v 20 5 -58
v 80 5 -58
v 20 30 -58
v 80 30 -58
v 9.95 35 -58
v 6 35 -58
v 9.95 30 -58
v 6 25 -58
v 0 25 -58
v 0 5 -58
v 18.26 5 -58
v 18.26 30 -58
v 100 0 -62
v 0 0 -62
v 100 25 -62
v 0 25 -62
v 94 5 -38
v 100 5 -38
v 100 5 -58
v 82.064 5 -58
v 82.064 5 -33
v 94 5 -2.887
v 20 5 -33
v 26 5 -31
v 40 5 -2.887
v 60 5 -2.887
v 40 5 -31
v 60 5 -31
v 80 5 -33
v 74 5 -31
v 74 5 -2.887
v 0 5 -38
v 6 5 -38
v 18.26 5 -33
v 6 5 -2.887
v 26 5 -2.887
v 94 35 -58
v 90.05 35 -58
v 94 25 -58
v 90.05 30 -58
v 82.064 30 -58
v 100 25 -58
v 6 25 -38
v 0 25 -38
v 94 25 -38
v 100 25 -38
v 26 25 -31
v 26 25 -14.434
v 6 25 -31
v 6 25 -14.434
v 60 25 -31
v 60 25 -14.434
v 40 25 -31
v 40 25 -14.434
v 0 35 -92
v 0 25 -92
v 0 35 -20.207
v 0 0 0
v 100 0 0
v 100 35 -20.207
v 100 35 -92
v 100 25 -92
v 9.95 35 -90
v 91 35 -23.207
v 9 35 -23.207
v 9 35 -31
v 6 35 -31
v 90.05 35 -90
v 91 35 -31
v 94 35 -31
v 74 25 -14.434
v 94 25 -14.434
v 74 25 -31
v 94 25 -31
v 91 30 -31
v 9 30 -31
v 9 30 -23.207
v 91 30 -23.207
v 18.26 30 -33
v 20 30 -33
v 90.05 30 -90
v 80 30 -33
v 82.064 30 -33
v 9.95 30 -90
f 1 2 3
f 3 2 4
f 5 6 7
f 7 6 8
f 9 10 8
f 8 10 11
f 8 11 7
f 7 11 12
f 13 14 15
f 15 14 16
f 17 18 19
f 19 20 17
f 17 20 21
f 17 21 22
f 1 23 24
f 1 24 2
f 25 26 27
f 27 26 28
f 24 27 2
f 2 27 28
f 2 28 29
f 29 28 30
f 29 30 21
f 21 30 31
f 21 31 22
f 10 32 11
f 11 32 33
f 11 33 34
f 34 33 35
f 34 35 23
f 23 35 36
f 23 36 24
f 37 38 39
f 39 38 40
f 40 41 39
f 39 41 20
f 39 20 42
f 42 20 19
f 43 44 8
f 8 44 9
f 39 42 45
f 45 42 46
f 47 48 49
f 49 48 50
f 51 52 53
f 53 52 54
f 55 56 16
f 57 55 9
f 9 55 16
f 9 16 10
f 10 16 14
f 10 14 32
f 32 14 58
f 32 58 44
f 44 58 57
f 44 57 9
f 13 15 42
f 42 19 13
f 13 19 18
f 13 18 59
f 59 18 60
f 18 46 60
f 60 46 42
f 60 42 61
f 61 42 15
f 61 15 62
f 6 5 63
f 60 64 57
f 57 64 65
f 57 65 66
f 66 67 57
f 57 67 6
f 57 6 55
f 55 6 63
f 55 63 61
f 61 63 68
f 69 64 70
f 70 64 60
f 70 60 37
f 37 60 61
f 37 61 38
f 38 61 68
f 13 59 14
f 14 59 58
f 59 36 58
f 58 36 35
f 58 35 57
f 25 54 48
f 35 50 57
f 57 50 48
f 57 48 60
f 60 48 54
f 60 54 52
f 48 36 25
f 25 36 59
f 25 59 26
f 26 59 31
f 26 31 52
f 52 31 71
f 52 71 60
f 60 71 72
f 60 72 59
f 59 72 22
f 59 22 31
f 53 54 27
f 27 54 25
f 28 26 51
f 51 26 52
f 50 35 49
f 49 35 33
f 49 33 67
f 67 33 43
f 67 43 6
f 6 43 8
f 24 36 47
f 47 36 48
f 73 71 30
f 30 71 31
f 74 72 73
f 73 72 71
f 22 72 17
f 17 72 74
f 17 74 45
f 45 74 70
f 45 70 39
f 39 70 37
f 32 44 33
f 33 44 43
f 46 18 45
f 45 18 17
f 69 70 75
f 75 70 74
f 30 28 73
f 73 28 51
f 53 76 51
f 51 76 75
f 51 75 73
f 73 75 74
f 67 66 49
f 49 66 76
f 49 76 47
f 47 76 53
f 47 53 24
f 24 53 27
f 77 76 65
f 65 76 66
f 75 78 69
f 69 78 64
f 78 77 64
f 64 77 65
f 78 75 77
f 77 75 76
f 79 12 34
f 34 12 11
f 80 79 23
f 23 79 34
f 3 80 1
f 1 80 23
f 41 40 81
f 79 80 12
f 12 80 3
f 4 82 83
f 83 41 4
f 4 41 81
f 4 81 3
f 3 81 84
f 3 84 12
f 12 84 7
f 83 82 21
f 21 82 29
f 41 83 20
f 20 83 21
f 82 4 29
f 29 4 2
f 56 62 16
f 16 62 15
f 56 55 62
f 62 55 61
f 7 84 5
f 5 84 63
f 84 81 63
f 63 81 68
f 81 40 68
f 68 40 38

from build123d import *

# Parameters (mm, degrees)
CROQUIS1_W              = 100
CROQUIS1_H              = 62
SALIENTE_EXTRUIR1_DEPTH = 35
CHAFL_N1_SIZE2          = 20.207259422
CHAFL_N1_SIZE           = 35
CROQUIS3_W              = 20
CROQUIS3_H              = 20
CORTAR_EXTRUIR1_DEPTH   = 38
CROQUIS4_W              = 20
CROQUIS4_H              = 20
CORTAR_EXTRUIR2_DEPTH   = 100
CROQUIS7_W              = 88
CROQUIS7_H              = 27
CORTAR_EXTRUIR5_DEPTH   = 30
CORTAR_EXTRUIR6_DEPTH   = 5
CROQUIS9_W              = 1.740341303
CROQUIS9_H              = 25
CROQUIS9_W_2            = 2.064222337
SALIENTE_EXTRUIR2_DEPTH = 25
CROQUIS10_W             = 100
CROQUIS10_H             = 10
SALIENTE_EXTRUIR3_DEPTH = 30
CROQUIS11_W             = 80.1
CROQUIS11_H             = 32
CORTAR_EXTRUIR7_DEPTH   = 5


with BuildPart() as part:
    # Croquis1 → Saliente-Extruir1 (new body)
    with BuildSketch(Plane(origin=(0, 0, 0), x_dir=(1, 0, 0), z_dir=(0, 1, 0))):
        with Locations((50, 31)):
            Rectangle(CROQUIS1_W, CROQUIS1_H)
    extrude(amount=SALIENTE_EXTRUIR1_DEPTH)

    # Chaflán1
    chafl_n1_edges = [part.edges().sort_by_distance(p)[0] for p in [
        (50, 35, 0),
    ]]
    chafl_n1_side = [part.faces().sort_by_distance(p)[0] for p in [
        (50, 34.595854812, 0),
    ]]
    chamfer(chafl_n1_edges, length=CHAFL_N1_SIZE - 0.0001, length2=CHAFL_N1_SIZE2 - 0.0001, reference=chafl_n1_side[0])  # a hair under: the kernel refuses the full size

    # Croquis3 → Cortar-Extruir1 (cut)
    with BuildSketch(Plane.XY):
        with Locations((50, 15)):
            Rectangle(CROQUIS3_W, CROQUIS3_H)
        with Locations((16, 15)):
            Rectangle(CROQUIS3_W, CROQUIS3_H)
        with Locations((84, 15)):
            Rectangle(CROQUIS3_W, CROQUIS3_H)
    extrude(amount=-CORTAR_EXTRUIR1_DEPTH, mode=Mode.SUBTRACT)

    # Croquis4 → Cortar-Extruir2 (cut)
    with BuildSketch(Plane.ZY):
        with Locations((-48, 15)):
            Rectangle(CROQUIS4_W, CROQUIS4_H)
    extrude(amount=-CORTAR_EXTRUIR2_DEPTH, mode=Mode.SUBTRACT)

    # Croquis7 → Cortar-Extruir5 (cut)
    with BuildSketch(Plane(origin=(0, 35, 0), x_dir=(1, 0, 0), z_dir=(0, 1, 0))):
        with Locations((50, 44.5)):
            Rectangle(CROQUIS7_W, CROQUIS7_H)
    extrude(amount=-CORTAR_EXTRUIR5_DEPTH, mode=Mode.SUBTRACT)

    # Croquis8 → Cortar-Extruir6 (cut)
    with BuildSketch(Plane(origin=(0, 35, 0), x_dir=(1, 0, 0), z_dir=(0, 1, 0))):
        Polygon((9, 31), (23, 31), (43, 31), (57, 31), (77, 31), (91, 31), (91, 23.207259422), (77, 23.207259422), (57, 23.207259422), (43, 23.207259422), (23, 23.207259422), (9, 23.207259422), align=None)
    extrude(amount=-CORTAR_EXTRUIR6_DEPTH, mode=Mode.SUBTRACT)

    # Croquis9 → Saliente-Extruir2 (add)
    with BuildSketch(Plane(origin=(0, 5, 0), x_dir=(1, 0, 0), z_dir=(0, 1, 0))):
        with Locations((19.129829349, 45.5)):
            Rectangle(CROQUIS9_W, CROQUIS9_H)
        with Locations((81.032111168, 45.5)):
            Rectangle(CROQUIS9_W_2, CROQUIS9_H)
    extrude(amount=SALIENTE_EXTRUIR2_DEPTH)

    # Croquis10 → Saliente-Extruir3 (add)
    with BuildSketch(Plane(origin=(0, 0, -62), x_dir=(-1, 0, 0), z_dir=(0, 0, -1))):
        with Locations((-50, 30)):
            Rectangle(CROQUIS10_W, CROQUIS10_H)
    extrude(amount=SALIENTE_EXTRUIR3_DEPTH)

    # Croquis11 → Cortar-Extruir7 (cut)
    with BuildSketch(Plane(origin=(0, 35, 0), x_dir=(1, 0, 0), z_dir=(0, 1, 0))):
        with Locations((50, 74)):
            Rectangle(CROQUIS11_W, CROQUIS11_H)
    extrude(amount=-CORTAR_EXTRUIR7_DEPTH, mode=Mode.SUBTRACT)


solid = part.part
